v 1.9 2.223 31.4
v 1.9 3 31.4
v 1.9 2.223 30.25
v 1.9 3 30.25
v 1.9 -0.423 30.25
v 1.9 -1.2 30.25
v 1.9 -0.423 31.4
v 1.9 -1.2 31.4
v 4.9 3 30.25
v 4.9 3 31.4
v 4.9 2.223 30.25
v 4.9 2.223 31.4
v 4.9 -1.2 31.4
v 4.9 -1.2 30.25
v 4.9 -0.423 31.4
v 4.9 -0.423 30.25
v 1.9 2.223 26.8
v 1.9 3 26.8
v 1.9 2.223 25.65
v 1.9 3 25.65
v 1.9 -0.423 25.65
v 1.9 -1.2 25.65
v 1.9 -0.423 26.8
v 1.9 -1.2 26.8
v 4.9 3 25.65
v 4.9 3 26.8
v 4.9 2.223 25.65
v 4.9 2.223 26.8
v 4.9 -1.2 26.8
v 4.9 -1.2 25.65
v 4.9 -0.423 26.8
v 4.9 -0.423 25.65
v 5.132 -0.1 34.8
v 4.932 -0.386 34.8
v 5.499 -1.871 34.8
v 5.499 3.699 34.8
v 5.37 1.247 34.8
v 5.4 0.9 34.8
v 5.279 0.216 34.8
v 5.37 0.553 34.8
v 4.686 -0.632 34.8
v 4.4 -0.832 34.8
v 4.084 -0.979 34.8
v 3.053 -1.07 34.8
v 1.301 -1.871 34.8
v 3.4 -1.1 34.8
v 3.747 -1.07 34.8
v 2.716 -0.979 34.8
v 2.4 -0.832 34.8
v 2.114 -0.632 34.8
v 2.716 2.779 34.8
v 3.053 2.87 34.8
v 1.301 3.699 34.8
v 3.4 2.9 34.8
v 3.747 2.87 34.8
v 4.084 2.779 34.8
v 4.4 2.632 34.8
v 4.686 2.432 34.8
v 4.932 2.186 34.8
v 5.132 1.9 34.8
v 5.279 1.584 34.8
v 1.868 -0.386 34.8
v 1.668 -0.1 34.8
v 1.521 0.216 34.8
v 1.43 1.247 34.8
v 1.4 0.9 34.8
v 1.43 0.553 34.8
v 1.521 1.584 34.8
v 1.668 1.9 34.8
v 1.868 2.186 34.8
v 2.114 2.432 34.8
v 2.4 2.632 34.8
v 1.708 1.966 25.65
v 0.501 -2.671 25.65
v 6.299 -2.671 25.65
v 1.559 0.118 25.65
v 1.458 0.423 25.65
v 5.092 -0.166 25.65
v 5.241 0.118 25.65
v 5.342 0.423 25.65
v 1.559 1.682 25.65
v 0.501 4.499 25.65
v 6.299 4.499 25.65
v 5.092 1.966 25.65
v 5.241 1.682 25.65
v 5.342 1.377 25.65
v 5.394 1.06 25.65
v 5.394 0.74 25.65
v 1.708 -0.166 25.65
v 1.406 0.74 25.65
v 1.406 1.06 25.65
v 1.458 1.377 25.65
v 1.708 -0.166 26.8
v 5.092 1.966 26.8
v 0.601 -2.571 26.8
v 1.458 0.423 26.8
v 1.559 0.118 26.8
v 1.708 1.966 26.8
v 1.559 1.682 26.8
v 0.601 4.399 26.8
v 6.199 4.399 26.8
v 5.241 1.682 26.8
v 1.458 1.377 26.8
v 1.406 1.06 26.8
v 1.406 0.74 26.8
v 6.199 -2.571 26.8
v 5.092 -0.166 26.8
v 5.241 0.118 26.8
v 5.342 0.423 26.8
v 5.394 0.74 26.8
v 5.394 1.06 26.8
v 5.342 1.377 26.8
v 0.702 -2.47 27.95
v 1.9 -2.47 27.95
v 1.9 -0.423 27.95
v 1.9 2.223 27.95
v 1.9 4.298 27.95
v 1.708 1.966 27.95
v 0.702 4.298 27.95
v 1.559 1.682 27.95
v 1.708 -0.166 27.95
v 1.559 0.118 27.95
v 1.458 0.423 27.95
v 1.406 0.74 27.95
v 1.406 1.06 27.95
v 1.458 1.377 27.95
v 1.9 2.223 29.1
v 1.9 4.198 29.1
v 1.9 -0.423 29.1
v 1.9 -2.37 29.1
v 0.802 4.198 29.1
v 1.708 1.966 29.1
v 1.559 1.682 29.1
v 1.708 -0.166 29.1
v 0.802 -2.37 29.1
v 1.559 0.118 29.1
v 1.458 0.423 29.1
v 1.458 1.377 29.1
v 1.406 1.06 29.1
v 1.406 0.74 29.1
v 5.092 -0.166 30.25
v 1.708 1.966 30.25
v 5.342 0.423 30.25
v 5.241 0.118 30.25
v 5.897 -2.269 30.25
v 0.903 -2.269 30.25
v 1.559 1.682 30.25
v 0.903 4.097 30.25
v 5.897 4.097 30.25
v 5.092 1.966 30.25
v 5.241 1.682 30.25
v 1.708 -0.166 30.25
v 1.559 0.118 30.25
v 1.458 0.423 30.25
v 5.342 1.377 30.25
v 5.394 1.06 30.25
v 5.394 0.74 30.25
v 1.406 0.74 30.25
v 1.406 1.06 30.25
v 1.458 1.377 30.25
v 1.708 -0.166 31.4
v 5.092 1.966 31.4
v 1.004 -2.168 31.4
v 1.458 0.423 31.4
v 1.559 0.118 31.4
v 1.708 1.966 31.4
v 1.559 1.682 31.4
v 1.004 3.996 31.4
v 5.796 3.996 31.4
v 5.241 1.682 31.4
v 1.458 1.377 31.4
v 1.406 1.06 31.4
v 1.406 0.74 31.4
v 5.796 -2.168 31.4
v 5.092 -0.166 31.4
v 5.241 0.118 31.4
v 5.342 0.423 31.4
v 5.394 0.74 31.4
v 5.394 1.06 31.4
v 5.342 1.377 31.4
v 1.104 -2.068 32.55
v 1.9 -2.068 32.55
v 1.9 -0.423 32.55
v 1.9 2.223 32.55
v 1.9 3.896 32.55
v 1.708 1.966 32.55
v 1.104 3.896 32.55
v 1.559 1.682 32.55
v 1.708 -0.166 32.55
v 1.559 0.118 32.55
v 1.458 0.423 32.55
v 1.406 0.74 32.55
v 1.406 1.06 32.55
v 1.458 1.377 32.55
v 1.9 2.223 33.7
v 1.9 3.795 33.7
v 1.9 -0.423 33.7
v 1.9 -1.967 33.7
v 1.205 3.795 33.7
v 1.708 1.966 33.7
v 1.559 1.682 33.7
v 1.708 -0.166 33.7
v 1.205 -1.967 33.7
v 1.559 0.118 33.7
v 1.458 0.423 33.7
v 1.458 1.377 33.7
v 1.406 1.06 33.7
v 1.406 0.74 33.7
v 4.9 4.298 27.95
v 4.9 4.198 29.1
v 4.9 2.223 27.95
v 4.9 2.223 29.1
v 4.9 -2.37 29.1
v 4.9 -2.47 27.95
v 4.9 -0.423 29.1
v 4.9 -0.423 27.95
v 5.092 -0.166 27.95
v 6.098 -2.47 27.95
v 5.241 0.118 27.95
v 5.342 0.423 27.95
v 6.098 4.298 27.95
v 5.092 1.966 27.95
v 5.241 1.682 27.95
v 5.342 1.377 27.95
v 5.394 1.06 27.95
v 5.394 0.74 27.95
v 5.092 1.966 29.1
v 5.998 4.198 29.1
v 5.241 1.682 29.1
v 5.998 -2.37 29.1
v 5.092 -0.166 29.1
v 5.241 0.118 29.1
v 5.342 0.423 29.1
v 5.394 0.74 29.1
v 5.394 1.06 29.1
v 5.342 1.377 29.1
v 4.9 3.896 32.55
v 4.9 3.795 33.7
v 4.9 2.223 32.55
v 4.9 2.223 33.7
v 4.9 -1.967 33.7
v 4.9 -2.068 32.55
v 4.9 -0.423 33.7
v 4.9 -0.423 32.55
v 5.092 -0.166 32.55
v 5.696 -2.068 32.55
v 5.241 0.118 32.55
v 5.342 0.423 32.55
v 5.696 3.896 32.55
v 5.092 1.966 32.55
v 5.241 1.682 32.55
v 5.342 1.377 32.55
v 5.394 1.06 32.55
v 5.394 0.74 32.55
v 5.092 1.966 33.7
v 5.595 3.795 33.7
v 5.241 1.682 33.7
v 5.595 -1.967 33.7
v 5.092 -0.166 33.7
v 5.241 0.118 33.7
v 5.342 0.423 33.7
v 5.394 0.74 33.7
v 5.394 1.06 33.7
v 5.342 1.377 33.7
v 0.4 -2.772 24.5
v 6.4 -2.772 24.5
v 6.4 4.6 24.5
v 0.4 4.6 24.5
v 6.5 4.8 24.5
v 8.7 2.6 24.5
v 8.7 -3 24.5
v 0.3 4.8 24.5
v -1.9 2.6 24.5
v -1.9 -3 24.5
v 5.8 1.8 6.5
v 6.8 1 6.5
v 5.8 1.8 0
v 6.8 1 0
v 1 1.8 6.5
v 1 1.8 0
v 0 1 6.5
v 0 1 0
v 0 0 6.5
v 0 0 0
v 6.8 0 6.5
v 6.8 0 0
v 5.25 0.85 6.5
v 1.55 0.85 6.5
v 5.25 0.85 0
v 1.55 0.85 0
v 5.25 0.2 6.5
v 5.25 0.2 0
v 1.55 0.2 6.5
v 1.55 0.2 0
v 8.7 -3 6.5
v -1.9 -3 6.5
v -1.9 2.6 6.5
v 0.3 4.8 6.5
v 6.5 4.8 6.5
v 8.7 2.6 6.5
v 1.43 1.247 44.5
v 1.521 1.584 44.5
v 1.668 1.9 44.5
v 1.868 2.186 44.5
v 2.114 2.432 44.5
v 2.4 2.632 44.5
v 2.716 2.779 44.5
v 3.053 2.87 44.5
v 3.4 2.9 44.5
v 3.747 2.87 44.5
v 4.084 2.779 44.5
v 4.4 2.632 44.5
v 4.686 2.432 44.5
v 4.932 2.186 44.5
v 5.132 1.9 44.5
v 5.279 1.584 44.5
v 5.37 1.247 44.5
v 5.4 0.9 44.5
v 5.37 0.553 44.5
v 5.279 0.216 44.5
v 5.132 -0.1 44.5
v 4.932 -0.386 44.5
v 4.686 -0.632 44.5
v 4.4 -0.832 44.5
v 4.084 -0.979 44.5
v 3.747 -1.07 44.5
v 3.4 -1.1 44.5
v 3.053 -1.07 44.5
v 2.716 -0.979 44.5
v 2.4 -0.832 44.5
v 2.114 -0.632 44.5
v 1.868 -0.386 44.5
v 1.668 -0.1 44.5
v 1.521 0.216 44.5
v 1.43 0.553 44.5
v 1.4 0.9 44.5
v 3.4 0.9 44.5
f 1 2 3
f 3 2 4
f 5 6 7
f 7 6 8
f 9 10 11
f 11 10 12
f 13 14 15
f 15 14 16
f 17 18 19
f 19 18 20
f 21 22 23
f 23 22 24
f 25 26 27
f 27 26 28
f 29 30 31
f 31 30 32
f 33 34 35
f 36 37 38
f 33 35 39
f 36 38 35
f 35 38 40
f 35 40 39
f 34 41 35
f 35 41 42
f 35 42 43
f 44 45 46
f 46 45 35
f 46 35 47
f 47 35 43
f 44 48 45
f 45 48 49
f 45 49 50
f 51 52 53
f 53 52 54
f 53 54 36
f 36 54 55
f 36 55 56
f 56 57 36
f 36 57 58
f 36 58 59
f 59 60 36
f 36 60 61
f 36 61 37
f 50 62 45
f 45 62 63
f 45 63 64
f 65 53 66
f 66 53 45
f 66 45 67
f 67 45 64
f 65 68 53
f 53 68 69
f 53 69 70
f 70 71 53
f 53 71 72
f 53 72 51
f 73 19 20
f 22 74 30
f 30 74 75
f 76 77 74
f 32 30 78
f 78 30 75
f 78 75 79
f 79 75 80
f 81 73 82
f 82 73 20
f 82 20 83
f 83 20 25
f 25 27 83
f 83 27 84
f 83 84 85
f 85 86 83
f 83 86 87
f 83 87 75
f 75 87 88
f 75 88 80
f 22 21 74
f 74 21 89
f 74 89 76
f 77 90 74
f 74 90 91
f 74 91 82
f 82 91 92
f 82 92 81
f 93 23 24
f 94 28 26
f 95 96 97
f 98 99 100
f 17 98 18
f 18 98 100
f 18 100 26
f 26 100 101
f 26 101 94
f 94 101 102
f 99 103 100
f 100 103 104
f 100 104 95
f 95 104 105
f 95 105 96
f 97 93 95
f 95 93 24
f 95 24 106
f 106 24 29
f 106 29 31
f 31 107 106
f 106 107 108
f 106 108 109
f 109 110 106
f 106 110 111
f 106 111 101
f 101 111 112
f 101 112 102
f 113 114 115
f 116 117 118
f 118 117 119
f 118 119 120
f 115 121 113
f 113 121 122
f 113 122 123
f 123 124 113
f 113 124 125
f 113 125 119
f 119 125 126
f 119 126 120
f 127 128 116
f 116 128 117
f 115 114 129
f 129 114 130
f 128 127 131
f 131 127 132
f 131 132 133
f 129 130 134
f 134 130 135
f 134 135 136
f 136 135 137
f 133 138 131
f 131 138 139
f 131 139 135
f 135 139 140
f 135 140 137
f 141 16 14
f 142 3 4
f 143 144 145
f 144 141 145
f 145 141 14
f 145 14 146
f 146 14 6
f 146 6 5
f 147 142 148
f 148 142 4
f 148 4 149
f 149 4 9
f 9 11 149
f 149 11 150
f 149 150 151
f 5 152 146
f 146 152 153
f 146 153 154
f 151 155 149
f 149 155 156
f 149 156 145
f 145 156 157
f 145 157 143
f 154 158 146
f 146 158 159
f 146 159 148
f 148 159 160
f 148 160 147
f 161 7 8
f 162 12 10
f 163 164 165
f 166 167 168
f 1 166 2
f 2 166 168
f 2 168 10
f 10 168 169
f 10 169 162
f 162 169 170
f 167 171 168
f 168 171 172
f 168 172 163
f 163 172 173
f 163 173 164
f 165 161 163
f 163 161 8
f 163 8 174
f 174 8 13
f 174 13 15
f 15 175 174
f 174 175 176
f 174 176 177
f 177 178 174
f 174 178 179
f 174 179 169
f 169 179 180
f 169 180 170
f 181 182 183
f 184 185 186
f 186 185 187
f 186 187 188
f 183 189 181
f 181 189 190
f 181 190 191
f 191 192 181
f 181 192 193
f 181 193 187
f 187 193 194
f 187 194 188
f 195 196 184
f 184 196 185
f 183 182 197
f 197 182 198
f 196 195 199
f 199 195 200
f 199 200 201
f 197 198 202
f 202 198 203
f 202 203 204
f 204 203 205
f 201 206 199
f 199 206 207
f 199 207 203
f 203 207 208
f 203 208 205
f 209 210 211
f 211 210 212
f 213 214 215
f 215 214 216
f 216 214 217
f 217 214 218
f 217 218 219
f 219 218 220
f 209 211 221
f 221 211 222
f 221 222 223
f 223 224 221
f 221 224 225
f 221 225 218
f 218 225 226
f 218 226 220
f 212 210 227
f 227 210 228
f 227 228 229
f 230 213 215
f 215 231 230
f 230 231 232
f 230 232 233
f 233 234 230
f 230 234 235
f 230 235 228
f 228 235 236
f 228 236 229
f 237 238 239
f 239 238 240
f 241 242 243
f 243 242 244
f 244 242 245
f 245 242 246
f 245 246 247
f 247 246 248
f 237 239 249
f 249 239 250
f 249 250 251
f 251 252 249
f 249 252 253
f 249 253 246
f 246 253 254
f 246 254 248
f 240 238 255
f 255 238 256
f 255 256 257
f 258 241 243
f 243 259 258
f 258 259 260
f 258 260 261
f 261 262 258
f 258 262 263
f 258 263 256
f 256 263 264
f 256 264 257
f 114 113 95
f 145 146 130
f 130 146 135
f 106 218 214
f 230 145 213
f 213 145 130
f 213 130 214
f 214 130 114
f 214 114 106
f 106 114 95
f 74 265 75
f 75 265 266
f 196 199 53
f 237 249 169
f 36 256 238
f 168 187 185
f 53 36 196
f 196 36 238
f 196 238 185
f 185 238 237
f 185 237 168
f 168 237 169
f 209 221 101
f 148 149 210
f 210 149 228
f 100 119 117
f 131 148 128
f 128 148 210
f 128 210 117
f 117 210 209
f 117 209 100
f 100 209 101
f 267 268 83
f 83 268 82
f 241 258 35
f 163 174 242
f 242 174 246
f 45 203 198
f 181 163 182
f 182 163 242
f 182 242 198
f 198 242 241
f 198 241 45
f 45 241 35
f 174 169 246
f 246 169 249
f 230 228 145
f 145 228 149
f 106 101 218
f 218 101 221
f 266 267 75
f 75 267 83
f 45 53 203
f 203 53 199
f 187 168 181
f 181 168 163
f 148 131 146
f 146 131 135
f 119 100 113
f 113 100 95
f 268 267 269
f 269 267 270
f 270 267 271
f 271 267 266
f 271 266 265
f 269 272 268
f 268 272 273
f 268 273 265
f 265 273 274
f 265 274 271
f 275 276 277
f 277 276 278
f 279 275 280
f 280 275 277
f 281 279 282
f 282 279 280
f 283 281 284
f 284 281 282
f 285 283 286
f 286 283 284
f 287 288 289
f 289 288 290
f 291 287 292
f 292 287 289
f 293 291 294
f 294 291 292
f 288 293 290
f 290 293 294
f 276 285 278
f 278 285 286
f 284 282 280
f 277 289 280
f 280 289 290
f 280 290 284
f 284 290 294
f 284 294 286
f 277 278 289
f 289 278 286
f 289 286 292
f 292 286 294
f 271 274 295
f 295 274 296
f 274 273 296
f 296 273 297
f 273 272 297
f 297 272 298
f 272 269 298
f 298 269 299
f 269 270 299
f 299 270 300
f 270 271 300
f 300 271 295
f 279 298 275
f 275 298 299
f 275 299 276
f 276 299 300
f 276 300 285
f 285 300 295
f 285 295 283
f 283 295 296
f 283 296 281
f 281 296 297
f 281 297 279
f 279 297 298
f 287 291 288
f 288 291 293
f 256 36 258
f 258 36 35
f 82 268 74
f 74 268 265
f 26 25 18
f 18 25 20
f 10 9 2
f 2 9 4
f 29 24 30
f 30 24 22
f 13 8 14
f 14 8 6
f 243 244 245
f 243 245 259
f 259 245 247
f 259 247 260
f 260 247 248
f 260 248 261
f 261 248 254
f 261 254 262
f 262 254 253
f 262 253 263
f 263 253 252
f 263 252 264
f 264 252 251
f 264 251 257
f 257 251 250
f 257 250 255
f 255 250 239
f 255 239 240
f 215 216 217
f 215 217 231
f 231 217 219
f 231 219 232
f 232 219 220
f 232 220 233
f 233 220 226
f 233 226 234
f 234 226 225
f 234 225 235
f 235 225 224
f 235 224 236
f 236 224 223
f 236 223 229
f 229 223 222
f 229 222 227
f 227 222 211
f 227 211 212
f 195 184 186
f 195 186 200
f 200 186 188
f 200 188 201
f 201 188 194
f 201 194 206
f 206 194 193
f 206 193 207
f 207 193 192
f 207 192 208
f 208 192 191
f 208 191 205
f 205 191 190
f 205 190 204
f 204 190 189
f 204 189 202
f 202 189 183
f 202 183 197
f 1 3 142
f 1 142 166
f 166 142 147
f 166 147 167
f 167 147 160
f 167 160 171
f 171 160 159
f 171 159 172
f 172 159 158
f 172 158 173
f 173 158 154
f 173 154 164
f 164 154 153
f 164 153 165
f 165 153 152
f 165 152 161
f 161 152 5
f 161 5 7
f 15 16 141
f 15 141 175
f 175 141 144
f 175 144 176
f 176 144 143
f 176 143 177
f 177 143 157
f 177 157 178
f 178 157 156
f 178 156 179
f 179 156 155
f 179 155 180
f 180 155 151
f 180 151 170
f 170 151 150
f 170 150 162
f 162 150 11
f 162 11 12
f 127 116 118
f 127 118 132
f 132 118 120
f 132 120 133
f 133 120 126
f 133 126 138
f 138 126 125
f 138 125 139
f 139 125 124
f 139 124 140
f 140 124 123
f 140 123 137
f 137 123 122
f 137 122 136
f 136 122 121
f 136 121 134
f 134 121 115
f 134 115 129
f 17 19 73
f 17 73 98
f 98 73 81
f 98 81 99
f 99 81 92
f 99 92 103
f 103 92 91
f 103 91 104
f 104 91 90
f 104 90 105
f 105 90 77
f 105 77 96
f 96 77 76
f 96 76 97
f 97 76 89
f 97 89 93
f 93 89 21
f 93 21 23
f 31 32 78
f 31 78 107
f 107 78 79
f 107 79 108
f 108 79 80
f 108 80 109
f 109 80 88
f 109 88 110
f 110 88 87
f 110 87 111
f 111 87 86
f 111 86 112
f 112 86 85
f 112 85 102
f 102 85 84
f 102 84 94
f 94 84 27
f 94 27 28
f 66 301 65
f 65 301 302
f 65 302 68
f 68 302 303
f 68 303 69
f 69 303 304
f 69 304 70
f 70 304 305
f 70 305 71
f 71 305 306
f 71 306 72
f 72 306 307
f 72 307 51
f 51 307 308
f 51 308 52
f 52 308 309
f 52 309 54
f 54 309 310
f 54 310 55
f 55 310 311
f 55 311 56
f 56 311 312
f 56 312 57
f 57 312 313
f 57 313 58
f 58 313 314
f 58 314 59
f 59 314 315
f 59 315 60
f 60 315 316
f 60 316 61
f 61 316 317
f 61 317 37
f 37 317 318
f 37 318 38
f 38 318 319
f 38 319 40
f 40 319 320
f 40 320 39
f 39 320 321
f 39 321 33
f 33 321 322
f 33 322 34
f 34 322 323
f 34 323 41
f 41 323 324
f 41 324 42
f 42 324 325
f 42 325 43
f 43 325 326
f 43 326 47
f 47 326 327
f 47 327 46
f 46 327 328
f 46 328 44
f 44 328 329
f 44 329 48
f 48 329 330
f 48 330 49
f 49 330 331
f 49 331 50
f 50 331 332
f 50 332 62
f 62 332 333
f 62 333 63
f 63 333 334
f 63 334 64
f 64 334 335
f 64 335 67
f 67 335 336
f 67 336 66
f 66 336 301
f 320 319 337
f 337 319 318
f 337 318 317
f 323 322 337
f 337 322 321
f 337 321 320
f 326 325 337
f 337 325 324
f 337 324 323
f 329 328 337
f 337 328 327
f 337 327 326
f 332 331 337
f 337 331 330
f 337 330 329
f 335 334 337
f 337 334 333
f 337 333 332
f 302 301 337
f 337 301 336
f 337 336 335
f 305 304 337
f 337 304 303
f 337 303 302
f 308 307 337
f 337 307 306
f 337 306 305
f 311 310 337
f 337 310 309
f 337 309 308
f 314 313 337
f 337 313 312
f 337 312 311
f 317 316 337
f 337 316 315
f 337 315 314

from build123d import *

# Parameters (mm, degrees)
SKETCH1_W           = 3.7
SKETCH1_H           = 0.65
BOSS_EXTRUDE1_DEPTH = 6.5
SKETCH2_W           = 3.7
SKETCH2_H           = 0.65
BOSS_EXTRUDE2_DEPTH = 18
SKETCH5_W           = 6
SKETCH5_H           = 7.371976581
BOSS_EXTRUDE4_DEPTH = 10.3
BOSS_EXTRUDE4_TAPER = 5
SKETCH7_W           = 2.169554373
SKETCH7_H           = 1.15
CUT_EXTRUDE1_DEPTH  = 10.3
SKETCH9_W           = 1.15
SKETCH9_H           = 1.6
CUT_EXTRUDE2_DEPTH  = 10.3
SKETCH3_R           = 2
BOSS_EXTRUDE3_DEPTH = 20


with BuildPart() as part:
    # Sketch1 → Boss-Extrude1 (new body)
    with BuildSketch(Plane.XY):
        Polygon((1, 1.8), (0, 1), (0, 0), (6.8, 0), (6.8, 1), (5.8, 1.8), align=None)
        with Locations((3.4, 0.525)):
            Rectangle(SKETCH1_W, SKETCH1_H, mode=Mode.SUBTRACT)
    extrude(amount=BOSS_EXTRUDE1_DEPTH)

    # Sketch2 → Boss-Extrude2 (add)
    with BuildSketch(Plane.XY.offset(6.5)):
        Polygon((6.5, 4.8), (0.3, 4.8), (-1.9, 2.6), (-1.9, -3), (8.7, -3), (8.7, 2.6), align=None)
        Polygon((5.8, 1.8), (6.8, 1), (6.8, 0), (0, 0), (0, 1), (1, 1.8), align=None, mode=Mode.SUBTRACT)
        Polygon((6.8, 0), (6.8, 1), (5.8, 1.8), (1, 1.8), (0, 1), (0, 0), align=None)
        with Locations((3.4, 0.525)):
            Rectangle(SKETCH2_W, SKETCH2_H, mode=Mode.SUBTRACT)
        with Locations((3.4, 0.525)):
            Rectangle(SKETCH2_W, SKETCH2_H)
    extrude(amount=BOSS_EXTRUDE2_DEPTH)

    # Sketch5 → Boss-Extrude4 (add)
    with BuildSketch(Plane.XY.offset(24.5)):
        with Locations((3.4, 0.91401171)):
            Rectangle(SKETCH5_W, SKETCH5_H)
    extrude(amount=BOSS_EXTRUDE4_DEPTH, taper=BOSS_EXTRUDE4_TAPER)

    # Sketch7 → Cut-Extrude1 (cut)
    with BuildSketch(Plane(origin=(0, 4.8, 0), x_dir=(1, 0, 0), z_dir=(0, 1, 0))):
        Polygon((1.9, -25.65), (0.3, -25.65), (-0.269554373, -25.65), (-0.269554373, -26.8), (1.9, -26.8), align=None)
        with Locations((0.815222814, -28.525)):
            Rectangle(SKETCH7_W, SKETCH7_H)
        with Locations((0.815222814, -30.825)):
            Rectangle(SKETCH7_W, SKETCH7_H)
        with Locations((0.815222814, -33.125)):
            Rectangle(SKETCH7_W, SKETCH7_H)
        with Locations((5.984777187, -26.225)):
            Rectangle(SKETCH7_W, SKETCH7_H)
        with Locations((5.984777187, -28.525)):
            Rectangle(SKETCH7_W, SKETCH7_H)
        with Locations((5.984777187, -30.825)):
            Rectangle(SKETCH7_W, SKETCH7_H)
        with Locations((5.984777187, -33.125)):
            Rectangle(SKETCH7_W, SKETCH7_H)
    extrude(amount=-CUT_EXTRUDE1_DEPTH, mode=Mode.SUBTRACT)

    # Sketch9 → Cut-Extrude2 (cut)
    with BuildSketch(Plane(origin=(8.7, 0, 0), x_dir=(0, 0, -1), z_dir=(1, 0, 0))):
        with Locations((-26.225, 3.8)):
            Rectangle(SKETCH9_W, SKETCH9_H)
        with Locations((-30.825, 3.8)):
            Rectangle(SKETCH9_W, SKETCH9_H)
        with Locations((-26.225, -2)):
            Rectangle(SKETCH9_W, SKETCH9_H)
        with Locations((-30.825, -2)):
            Rectangle(SKETCH9_W, SKETCH9_H)
    extrude(amount=-CUT_EXTRUDE2_DEPTH, mode=Mode.SUBTRACT)

    # Sketch3 → Boss-Extrude3 (add)
    with BuildSketch(Plane.XY.offset(24.5)):
        with Locations((3.4, 0.9)):
            Circle(SKETCH3_R)
    extrude(amount=BOSS_EXTRUDE3_DEPTH)


solid = part.part
